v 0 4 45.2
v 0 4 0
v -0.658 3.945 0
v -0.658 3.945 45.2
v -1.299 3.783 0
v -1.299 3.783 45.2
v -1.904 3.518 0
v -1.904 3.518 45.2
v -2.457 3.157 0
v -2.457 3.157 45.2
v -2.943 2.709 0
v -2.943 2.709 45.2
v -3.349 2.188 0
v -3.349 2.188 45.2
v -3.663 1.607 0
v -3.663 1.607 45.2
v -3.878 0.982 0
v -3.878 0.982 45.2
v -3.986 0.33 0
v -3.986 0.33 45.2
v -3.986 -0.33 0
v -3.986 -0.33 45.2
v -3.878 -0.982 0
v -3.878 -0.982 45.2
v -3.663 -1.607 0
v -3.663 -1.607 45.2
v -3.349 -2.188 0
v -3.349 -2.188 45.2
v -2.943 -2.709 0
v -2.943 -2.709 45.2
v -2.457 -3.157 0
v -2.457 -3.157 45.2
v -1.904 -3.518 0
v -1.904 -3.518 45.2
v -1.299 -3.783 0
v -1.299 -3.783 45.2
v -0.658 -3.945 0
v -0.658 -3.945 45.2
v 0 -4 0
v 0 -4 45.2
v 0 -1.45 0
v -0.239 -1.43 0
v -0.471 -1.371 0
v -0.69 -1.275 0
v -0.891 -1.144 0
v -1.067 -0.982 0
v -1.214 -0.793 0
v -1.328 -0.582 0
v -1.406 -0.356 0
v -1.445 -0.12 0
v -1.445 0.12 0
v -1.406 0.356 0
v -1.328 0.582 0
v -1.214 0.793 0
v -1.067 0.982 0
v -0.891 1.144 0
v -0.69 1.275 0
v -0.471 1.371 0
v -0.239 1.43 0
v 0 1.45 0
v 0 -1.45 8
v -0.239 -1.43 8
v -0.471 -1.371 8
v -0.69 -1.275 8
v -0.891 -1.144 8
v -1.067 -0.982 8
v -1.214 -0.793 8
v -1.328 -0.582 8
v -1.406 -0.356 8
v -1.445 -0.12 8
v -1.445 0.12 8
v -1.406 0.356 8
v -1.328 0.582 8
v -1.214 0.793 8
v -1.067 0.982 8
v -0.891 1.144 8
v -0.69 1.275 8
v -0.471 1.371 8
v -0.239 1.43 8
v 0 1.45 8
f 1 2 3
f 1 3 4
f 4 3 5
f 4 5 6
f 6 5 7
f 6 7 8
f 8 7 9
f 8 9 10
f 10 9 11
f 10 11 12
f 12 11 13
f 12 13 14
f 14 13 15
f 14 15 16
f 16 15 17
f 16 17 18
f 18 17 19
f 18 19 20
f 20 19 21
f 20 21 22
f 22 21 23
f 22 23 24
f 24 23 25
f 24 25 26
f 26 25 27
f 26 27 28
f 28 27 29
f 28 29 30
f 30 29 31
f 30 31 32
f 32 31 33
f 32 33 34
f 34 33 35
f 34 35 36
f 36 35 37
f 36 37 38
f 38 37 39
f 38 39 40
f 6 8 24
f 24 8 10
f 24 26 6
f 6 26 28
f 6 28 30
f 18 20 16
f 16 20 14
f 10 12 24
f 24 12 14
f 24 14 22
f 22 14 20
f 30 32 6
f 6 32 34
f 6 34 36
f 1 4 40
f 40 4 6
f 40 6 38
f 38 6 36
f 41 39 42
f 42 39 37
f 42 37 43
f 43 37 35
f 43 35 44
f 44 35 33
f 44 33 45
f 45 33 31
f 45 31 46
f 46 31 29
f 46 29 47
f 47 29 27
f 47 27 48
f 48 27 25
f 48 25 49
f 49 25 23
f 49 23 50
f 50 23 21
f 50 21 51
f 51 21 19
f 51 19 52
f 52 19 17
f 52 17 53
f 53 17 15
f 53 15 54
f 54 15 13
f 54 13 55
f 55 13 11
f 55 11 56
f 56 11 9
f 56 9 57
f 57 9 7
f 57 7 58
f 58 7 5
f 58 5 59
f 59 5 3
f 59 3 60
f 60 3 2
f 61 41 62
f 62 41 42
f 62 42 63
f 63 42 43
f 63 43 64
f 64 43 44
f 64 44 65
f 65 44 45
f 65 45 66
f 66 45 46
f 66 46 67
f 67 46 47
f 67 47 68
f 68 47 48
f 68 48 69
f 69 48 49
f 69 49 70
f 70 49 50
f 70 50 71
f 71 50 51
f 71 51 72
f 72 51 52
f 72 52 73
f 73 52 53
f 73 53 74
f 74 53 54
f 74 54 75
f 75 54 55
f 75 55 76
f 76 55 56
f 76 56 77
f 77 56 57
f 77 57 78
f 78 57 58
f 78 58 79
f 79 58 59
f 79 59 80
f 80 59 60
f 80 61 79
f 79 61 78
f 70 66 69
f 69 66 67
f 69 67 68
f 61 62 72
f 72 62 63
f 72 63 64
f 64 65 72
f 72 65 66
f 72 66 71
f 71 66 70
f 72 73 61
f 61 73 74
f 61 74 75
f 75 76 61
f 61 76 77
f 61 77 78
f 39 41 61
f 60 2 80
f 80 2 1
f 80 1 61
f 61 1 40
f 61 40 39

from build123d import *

# Parameters (mm, degrees)
SKETCH_1_R          = 4
EXTRUDE_1_DEPTH     = 45.2
SKETCH_4_R          = 1.45
CUT_EXTRUDE_3_DEPTH = 8
CUT_EXTRUDE_4_DEPTH = 60


with BuildPart() as part:
    # 草图1 → 凸台-拉伸1 (new body)
    with BuildSketch(Plane.XY):
        Circle(SKETCH_1_R)
    extrude(amount=EXTRUDE_1_DEPTH)

    # 草图4 → 切除-拉伸3 (cut)
    with BuildSketch(Plane(origin=(0, 0, 0), x_dir=(-1, 0, 0), z_dir=(0, 0, -1))):
        Circle(SKETCH_4_R)
    extrude(amount=-CUT_EXTRUDE_3_DEPTH, mode=Mode.SUBTRACT)

    # 草图5 → 切除-拉伸4 (cut)
    with BuildSketch(Plane(origin=(0, 0, 0), x_dir=(-1, 0, 0), z_dir=(0, 0, -1))):
        with BuildLine():
            Line((0, -4), (0, 4))
            ThreePointArc((0, 4), (-4, 0), (0, -4))
        make_face()
    extrude(amount=-CUT_EXTRUDE_4_DEPTH, mode=Mode.SUBTRACT)


solid = part.part
